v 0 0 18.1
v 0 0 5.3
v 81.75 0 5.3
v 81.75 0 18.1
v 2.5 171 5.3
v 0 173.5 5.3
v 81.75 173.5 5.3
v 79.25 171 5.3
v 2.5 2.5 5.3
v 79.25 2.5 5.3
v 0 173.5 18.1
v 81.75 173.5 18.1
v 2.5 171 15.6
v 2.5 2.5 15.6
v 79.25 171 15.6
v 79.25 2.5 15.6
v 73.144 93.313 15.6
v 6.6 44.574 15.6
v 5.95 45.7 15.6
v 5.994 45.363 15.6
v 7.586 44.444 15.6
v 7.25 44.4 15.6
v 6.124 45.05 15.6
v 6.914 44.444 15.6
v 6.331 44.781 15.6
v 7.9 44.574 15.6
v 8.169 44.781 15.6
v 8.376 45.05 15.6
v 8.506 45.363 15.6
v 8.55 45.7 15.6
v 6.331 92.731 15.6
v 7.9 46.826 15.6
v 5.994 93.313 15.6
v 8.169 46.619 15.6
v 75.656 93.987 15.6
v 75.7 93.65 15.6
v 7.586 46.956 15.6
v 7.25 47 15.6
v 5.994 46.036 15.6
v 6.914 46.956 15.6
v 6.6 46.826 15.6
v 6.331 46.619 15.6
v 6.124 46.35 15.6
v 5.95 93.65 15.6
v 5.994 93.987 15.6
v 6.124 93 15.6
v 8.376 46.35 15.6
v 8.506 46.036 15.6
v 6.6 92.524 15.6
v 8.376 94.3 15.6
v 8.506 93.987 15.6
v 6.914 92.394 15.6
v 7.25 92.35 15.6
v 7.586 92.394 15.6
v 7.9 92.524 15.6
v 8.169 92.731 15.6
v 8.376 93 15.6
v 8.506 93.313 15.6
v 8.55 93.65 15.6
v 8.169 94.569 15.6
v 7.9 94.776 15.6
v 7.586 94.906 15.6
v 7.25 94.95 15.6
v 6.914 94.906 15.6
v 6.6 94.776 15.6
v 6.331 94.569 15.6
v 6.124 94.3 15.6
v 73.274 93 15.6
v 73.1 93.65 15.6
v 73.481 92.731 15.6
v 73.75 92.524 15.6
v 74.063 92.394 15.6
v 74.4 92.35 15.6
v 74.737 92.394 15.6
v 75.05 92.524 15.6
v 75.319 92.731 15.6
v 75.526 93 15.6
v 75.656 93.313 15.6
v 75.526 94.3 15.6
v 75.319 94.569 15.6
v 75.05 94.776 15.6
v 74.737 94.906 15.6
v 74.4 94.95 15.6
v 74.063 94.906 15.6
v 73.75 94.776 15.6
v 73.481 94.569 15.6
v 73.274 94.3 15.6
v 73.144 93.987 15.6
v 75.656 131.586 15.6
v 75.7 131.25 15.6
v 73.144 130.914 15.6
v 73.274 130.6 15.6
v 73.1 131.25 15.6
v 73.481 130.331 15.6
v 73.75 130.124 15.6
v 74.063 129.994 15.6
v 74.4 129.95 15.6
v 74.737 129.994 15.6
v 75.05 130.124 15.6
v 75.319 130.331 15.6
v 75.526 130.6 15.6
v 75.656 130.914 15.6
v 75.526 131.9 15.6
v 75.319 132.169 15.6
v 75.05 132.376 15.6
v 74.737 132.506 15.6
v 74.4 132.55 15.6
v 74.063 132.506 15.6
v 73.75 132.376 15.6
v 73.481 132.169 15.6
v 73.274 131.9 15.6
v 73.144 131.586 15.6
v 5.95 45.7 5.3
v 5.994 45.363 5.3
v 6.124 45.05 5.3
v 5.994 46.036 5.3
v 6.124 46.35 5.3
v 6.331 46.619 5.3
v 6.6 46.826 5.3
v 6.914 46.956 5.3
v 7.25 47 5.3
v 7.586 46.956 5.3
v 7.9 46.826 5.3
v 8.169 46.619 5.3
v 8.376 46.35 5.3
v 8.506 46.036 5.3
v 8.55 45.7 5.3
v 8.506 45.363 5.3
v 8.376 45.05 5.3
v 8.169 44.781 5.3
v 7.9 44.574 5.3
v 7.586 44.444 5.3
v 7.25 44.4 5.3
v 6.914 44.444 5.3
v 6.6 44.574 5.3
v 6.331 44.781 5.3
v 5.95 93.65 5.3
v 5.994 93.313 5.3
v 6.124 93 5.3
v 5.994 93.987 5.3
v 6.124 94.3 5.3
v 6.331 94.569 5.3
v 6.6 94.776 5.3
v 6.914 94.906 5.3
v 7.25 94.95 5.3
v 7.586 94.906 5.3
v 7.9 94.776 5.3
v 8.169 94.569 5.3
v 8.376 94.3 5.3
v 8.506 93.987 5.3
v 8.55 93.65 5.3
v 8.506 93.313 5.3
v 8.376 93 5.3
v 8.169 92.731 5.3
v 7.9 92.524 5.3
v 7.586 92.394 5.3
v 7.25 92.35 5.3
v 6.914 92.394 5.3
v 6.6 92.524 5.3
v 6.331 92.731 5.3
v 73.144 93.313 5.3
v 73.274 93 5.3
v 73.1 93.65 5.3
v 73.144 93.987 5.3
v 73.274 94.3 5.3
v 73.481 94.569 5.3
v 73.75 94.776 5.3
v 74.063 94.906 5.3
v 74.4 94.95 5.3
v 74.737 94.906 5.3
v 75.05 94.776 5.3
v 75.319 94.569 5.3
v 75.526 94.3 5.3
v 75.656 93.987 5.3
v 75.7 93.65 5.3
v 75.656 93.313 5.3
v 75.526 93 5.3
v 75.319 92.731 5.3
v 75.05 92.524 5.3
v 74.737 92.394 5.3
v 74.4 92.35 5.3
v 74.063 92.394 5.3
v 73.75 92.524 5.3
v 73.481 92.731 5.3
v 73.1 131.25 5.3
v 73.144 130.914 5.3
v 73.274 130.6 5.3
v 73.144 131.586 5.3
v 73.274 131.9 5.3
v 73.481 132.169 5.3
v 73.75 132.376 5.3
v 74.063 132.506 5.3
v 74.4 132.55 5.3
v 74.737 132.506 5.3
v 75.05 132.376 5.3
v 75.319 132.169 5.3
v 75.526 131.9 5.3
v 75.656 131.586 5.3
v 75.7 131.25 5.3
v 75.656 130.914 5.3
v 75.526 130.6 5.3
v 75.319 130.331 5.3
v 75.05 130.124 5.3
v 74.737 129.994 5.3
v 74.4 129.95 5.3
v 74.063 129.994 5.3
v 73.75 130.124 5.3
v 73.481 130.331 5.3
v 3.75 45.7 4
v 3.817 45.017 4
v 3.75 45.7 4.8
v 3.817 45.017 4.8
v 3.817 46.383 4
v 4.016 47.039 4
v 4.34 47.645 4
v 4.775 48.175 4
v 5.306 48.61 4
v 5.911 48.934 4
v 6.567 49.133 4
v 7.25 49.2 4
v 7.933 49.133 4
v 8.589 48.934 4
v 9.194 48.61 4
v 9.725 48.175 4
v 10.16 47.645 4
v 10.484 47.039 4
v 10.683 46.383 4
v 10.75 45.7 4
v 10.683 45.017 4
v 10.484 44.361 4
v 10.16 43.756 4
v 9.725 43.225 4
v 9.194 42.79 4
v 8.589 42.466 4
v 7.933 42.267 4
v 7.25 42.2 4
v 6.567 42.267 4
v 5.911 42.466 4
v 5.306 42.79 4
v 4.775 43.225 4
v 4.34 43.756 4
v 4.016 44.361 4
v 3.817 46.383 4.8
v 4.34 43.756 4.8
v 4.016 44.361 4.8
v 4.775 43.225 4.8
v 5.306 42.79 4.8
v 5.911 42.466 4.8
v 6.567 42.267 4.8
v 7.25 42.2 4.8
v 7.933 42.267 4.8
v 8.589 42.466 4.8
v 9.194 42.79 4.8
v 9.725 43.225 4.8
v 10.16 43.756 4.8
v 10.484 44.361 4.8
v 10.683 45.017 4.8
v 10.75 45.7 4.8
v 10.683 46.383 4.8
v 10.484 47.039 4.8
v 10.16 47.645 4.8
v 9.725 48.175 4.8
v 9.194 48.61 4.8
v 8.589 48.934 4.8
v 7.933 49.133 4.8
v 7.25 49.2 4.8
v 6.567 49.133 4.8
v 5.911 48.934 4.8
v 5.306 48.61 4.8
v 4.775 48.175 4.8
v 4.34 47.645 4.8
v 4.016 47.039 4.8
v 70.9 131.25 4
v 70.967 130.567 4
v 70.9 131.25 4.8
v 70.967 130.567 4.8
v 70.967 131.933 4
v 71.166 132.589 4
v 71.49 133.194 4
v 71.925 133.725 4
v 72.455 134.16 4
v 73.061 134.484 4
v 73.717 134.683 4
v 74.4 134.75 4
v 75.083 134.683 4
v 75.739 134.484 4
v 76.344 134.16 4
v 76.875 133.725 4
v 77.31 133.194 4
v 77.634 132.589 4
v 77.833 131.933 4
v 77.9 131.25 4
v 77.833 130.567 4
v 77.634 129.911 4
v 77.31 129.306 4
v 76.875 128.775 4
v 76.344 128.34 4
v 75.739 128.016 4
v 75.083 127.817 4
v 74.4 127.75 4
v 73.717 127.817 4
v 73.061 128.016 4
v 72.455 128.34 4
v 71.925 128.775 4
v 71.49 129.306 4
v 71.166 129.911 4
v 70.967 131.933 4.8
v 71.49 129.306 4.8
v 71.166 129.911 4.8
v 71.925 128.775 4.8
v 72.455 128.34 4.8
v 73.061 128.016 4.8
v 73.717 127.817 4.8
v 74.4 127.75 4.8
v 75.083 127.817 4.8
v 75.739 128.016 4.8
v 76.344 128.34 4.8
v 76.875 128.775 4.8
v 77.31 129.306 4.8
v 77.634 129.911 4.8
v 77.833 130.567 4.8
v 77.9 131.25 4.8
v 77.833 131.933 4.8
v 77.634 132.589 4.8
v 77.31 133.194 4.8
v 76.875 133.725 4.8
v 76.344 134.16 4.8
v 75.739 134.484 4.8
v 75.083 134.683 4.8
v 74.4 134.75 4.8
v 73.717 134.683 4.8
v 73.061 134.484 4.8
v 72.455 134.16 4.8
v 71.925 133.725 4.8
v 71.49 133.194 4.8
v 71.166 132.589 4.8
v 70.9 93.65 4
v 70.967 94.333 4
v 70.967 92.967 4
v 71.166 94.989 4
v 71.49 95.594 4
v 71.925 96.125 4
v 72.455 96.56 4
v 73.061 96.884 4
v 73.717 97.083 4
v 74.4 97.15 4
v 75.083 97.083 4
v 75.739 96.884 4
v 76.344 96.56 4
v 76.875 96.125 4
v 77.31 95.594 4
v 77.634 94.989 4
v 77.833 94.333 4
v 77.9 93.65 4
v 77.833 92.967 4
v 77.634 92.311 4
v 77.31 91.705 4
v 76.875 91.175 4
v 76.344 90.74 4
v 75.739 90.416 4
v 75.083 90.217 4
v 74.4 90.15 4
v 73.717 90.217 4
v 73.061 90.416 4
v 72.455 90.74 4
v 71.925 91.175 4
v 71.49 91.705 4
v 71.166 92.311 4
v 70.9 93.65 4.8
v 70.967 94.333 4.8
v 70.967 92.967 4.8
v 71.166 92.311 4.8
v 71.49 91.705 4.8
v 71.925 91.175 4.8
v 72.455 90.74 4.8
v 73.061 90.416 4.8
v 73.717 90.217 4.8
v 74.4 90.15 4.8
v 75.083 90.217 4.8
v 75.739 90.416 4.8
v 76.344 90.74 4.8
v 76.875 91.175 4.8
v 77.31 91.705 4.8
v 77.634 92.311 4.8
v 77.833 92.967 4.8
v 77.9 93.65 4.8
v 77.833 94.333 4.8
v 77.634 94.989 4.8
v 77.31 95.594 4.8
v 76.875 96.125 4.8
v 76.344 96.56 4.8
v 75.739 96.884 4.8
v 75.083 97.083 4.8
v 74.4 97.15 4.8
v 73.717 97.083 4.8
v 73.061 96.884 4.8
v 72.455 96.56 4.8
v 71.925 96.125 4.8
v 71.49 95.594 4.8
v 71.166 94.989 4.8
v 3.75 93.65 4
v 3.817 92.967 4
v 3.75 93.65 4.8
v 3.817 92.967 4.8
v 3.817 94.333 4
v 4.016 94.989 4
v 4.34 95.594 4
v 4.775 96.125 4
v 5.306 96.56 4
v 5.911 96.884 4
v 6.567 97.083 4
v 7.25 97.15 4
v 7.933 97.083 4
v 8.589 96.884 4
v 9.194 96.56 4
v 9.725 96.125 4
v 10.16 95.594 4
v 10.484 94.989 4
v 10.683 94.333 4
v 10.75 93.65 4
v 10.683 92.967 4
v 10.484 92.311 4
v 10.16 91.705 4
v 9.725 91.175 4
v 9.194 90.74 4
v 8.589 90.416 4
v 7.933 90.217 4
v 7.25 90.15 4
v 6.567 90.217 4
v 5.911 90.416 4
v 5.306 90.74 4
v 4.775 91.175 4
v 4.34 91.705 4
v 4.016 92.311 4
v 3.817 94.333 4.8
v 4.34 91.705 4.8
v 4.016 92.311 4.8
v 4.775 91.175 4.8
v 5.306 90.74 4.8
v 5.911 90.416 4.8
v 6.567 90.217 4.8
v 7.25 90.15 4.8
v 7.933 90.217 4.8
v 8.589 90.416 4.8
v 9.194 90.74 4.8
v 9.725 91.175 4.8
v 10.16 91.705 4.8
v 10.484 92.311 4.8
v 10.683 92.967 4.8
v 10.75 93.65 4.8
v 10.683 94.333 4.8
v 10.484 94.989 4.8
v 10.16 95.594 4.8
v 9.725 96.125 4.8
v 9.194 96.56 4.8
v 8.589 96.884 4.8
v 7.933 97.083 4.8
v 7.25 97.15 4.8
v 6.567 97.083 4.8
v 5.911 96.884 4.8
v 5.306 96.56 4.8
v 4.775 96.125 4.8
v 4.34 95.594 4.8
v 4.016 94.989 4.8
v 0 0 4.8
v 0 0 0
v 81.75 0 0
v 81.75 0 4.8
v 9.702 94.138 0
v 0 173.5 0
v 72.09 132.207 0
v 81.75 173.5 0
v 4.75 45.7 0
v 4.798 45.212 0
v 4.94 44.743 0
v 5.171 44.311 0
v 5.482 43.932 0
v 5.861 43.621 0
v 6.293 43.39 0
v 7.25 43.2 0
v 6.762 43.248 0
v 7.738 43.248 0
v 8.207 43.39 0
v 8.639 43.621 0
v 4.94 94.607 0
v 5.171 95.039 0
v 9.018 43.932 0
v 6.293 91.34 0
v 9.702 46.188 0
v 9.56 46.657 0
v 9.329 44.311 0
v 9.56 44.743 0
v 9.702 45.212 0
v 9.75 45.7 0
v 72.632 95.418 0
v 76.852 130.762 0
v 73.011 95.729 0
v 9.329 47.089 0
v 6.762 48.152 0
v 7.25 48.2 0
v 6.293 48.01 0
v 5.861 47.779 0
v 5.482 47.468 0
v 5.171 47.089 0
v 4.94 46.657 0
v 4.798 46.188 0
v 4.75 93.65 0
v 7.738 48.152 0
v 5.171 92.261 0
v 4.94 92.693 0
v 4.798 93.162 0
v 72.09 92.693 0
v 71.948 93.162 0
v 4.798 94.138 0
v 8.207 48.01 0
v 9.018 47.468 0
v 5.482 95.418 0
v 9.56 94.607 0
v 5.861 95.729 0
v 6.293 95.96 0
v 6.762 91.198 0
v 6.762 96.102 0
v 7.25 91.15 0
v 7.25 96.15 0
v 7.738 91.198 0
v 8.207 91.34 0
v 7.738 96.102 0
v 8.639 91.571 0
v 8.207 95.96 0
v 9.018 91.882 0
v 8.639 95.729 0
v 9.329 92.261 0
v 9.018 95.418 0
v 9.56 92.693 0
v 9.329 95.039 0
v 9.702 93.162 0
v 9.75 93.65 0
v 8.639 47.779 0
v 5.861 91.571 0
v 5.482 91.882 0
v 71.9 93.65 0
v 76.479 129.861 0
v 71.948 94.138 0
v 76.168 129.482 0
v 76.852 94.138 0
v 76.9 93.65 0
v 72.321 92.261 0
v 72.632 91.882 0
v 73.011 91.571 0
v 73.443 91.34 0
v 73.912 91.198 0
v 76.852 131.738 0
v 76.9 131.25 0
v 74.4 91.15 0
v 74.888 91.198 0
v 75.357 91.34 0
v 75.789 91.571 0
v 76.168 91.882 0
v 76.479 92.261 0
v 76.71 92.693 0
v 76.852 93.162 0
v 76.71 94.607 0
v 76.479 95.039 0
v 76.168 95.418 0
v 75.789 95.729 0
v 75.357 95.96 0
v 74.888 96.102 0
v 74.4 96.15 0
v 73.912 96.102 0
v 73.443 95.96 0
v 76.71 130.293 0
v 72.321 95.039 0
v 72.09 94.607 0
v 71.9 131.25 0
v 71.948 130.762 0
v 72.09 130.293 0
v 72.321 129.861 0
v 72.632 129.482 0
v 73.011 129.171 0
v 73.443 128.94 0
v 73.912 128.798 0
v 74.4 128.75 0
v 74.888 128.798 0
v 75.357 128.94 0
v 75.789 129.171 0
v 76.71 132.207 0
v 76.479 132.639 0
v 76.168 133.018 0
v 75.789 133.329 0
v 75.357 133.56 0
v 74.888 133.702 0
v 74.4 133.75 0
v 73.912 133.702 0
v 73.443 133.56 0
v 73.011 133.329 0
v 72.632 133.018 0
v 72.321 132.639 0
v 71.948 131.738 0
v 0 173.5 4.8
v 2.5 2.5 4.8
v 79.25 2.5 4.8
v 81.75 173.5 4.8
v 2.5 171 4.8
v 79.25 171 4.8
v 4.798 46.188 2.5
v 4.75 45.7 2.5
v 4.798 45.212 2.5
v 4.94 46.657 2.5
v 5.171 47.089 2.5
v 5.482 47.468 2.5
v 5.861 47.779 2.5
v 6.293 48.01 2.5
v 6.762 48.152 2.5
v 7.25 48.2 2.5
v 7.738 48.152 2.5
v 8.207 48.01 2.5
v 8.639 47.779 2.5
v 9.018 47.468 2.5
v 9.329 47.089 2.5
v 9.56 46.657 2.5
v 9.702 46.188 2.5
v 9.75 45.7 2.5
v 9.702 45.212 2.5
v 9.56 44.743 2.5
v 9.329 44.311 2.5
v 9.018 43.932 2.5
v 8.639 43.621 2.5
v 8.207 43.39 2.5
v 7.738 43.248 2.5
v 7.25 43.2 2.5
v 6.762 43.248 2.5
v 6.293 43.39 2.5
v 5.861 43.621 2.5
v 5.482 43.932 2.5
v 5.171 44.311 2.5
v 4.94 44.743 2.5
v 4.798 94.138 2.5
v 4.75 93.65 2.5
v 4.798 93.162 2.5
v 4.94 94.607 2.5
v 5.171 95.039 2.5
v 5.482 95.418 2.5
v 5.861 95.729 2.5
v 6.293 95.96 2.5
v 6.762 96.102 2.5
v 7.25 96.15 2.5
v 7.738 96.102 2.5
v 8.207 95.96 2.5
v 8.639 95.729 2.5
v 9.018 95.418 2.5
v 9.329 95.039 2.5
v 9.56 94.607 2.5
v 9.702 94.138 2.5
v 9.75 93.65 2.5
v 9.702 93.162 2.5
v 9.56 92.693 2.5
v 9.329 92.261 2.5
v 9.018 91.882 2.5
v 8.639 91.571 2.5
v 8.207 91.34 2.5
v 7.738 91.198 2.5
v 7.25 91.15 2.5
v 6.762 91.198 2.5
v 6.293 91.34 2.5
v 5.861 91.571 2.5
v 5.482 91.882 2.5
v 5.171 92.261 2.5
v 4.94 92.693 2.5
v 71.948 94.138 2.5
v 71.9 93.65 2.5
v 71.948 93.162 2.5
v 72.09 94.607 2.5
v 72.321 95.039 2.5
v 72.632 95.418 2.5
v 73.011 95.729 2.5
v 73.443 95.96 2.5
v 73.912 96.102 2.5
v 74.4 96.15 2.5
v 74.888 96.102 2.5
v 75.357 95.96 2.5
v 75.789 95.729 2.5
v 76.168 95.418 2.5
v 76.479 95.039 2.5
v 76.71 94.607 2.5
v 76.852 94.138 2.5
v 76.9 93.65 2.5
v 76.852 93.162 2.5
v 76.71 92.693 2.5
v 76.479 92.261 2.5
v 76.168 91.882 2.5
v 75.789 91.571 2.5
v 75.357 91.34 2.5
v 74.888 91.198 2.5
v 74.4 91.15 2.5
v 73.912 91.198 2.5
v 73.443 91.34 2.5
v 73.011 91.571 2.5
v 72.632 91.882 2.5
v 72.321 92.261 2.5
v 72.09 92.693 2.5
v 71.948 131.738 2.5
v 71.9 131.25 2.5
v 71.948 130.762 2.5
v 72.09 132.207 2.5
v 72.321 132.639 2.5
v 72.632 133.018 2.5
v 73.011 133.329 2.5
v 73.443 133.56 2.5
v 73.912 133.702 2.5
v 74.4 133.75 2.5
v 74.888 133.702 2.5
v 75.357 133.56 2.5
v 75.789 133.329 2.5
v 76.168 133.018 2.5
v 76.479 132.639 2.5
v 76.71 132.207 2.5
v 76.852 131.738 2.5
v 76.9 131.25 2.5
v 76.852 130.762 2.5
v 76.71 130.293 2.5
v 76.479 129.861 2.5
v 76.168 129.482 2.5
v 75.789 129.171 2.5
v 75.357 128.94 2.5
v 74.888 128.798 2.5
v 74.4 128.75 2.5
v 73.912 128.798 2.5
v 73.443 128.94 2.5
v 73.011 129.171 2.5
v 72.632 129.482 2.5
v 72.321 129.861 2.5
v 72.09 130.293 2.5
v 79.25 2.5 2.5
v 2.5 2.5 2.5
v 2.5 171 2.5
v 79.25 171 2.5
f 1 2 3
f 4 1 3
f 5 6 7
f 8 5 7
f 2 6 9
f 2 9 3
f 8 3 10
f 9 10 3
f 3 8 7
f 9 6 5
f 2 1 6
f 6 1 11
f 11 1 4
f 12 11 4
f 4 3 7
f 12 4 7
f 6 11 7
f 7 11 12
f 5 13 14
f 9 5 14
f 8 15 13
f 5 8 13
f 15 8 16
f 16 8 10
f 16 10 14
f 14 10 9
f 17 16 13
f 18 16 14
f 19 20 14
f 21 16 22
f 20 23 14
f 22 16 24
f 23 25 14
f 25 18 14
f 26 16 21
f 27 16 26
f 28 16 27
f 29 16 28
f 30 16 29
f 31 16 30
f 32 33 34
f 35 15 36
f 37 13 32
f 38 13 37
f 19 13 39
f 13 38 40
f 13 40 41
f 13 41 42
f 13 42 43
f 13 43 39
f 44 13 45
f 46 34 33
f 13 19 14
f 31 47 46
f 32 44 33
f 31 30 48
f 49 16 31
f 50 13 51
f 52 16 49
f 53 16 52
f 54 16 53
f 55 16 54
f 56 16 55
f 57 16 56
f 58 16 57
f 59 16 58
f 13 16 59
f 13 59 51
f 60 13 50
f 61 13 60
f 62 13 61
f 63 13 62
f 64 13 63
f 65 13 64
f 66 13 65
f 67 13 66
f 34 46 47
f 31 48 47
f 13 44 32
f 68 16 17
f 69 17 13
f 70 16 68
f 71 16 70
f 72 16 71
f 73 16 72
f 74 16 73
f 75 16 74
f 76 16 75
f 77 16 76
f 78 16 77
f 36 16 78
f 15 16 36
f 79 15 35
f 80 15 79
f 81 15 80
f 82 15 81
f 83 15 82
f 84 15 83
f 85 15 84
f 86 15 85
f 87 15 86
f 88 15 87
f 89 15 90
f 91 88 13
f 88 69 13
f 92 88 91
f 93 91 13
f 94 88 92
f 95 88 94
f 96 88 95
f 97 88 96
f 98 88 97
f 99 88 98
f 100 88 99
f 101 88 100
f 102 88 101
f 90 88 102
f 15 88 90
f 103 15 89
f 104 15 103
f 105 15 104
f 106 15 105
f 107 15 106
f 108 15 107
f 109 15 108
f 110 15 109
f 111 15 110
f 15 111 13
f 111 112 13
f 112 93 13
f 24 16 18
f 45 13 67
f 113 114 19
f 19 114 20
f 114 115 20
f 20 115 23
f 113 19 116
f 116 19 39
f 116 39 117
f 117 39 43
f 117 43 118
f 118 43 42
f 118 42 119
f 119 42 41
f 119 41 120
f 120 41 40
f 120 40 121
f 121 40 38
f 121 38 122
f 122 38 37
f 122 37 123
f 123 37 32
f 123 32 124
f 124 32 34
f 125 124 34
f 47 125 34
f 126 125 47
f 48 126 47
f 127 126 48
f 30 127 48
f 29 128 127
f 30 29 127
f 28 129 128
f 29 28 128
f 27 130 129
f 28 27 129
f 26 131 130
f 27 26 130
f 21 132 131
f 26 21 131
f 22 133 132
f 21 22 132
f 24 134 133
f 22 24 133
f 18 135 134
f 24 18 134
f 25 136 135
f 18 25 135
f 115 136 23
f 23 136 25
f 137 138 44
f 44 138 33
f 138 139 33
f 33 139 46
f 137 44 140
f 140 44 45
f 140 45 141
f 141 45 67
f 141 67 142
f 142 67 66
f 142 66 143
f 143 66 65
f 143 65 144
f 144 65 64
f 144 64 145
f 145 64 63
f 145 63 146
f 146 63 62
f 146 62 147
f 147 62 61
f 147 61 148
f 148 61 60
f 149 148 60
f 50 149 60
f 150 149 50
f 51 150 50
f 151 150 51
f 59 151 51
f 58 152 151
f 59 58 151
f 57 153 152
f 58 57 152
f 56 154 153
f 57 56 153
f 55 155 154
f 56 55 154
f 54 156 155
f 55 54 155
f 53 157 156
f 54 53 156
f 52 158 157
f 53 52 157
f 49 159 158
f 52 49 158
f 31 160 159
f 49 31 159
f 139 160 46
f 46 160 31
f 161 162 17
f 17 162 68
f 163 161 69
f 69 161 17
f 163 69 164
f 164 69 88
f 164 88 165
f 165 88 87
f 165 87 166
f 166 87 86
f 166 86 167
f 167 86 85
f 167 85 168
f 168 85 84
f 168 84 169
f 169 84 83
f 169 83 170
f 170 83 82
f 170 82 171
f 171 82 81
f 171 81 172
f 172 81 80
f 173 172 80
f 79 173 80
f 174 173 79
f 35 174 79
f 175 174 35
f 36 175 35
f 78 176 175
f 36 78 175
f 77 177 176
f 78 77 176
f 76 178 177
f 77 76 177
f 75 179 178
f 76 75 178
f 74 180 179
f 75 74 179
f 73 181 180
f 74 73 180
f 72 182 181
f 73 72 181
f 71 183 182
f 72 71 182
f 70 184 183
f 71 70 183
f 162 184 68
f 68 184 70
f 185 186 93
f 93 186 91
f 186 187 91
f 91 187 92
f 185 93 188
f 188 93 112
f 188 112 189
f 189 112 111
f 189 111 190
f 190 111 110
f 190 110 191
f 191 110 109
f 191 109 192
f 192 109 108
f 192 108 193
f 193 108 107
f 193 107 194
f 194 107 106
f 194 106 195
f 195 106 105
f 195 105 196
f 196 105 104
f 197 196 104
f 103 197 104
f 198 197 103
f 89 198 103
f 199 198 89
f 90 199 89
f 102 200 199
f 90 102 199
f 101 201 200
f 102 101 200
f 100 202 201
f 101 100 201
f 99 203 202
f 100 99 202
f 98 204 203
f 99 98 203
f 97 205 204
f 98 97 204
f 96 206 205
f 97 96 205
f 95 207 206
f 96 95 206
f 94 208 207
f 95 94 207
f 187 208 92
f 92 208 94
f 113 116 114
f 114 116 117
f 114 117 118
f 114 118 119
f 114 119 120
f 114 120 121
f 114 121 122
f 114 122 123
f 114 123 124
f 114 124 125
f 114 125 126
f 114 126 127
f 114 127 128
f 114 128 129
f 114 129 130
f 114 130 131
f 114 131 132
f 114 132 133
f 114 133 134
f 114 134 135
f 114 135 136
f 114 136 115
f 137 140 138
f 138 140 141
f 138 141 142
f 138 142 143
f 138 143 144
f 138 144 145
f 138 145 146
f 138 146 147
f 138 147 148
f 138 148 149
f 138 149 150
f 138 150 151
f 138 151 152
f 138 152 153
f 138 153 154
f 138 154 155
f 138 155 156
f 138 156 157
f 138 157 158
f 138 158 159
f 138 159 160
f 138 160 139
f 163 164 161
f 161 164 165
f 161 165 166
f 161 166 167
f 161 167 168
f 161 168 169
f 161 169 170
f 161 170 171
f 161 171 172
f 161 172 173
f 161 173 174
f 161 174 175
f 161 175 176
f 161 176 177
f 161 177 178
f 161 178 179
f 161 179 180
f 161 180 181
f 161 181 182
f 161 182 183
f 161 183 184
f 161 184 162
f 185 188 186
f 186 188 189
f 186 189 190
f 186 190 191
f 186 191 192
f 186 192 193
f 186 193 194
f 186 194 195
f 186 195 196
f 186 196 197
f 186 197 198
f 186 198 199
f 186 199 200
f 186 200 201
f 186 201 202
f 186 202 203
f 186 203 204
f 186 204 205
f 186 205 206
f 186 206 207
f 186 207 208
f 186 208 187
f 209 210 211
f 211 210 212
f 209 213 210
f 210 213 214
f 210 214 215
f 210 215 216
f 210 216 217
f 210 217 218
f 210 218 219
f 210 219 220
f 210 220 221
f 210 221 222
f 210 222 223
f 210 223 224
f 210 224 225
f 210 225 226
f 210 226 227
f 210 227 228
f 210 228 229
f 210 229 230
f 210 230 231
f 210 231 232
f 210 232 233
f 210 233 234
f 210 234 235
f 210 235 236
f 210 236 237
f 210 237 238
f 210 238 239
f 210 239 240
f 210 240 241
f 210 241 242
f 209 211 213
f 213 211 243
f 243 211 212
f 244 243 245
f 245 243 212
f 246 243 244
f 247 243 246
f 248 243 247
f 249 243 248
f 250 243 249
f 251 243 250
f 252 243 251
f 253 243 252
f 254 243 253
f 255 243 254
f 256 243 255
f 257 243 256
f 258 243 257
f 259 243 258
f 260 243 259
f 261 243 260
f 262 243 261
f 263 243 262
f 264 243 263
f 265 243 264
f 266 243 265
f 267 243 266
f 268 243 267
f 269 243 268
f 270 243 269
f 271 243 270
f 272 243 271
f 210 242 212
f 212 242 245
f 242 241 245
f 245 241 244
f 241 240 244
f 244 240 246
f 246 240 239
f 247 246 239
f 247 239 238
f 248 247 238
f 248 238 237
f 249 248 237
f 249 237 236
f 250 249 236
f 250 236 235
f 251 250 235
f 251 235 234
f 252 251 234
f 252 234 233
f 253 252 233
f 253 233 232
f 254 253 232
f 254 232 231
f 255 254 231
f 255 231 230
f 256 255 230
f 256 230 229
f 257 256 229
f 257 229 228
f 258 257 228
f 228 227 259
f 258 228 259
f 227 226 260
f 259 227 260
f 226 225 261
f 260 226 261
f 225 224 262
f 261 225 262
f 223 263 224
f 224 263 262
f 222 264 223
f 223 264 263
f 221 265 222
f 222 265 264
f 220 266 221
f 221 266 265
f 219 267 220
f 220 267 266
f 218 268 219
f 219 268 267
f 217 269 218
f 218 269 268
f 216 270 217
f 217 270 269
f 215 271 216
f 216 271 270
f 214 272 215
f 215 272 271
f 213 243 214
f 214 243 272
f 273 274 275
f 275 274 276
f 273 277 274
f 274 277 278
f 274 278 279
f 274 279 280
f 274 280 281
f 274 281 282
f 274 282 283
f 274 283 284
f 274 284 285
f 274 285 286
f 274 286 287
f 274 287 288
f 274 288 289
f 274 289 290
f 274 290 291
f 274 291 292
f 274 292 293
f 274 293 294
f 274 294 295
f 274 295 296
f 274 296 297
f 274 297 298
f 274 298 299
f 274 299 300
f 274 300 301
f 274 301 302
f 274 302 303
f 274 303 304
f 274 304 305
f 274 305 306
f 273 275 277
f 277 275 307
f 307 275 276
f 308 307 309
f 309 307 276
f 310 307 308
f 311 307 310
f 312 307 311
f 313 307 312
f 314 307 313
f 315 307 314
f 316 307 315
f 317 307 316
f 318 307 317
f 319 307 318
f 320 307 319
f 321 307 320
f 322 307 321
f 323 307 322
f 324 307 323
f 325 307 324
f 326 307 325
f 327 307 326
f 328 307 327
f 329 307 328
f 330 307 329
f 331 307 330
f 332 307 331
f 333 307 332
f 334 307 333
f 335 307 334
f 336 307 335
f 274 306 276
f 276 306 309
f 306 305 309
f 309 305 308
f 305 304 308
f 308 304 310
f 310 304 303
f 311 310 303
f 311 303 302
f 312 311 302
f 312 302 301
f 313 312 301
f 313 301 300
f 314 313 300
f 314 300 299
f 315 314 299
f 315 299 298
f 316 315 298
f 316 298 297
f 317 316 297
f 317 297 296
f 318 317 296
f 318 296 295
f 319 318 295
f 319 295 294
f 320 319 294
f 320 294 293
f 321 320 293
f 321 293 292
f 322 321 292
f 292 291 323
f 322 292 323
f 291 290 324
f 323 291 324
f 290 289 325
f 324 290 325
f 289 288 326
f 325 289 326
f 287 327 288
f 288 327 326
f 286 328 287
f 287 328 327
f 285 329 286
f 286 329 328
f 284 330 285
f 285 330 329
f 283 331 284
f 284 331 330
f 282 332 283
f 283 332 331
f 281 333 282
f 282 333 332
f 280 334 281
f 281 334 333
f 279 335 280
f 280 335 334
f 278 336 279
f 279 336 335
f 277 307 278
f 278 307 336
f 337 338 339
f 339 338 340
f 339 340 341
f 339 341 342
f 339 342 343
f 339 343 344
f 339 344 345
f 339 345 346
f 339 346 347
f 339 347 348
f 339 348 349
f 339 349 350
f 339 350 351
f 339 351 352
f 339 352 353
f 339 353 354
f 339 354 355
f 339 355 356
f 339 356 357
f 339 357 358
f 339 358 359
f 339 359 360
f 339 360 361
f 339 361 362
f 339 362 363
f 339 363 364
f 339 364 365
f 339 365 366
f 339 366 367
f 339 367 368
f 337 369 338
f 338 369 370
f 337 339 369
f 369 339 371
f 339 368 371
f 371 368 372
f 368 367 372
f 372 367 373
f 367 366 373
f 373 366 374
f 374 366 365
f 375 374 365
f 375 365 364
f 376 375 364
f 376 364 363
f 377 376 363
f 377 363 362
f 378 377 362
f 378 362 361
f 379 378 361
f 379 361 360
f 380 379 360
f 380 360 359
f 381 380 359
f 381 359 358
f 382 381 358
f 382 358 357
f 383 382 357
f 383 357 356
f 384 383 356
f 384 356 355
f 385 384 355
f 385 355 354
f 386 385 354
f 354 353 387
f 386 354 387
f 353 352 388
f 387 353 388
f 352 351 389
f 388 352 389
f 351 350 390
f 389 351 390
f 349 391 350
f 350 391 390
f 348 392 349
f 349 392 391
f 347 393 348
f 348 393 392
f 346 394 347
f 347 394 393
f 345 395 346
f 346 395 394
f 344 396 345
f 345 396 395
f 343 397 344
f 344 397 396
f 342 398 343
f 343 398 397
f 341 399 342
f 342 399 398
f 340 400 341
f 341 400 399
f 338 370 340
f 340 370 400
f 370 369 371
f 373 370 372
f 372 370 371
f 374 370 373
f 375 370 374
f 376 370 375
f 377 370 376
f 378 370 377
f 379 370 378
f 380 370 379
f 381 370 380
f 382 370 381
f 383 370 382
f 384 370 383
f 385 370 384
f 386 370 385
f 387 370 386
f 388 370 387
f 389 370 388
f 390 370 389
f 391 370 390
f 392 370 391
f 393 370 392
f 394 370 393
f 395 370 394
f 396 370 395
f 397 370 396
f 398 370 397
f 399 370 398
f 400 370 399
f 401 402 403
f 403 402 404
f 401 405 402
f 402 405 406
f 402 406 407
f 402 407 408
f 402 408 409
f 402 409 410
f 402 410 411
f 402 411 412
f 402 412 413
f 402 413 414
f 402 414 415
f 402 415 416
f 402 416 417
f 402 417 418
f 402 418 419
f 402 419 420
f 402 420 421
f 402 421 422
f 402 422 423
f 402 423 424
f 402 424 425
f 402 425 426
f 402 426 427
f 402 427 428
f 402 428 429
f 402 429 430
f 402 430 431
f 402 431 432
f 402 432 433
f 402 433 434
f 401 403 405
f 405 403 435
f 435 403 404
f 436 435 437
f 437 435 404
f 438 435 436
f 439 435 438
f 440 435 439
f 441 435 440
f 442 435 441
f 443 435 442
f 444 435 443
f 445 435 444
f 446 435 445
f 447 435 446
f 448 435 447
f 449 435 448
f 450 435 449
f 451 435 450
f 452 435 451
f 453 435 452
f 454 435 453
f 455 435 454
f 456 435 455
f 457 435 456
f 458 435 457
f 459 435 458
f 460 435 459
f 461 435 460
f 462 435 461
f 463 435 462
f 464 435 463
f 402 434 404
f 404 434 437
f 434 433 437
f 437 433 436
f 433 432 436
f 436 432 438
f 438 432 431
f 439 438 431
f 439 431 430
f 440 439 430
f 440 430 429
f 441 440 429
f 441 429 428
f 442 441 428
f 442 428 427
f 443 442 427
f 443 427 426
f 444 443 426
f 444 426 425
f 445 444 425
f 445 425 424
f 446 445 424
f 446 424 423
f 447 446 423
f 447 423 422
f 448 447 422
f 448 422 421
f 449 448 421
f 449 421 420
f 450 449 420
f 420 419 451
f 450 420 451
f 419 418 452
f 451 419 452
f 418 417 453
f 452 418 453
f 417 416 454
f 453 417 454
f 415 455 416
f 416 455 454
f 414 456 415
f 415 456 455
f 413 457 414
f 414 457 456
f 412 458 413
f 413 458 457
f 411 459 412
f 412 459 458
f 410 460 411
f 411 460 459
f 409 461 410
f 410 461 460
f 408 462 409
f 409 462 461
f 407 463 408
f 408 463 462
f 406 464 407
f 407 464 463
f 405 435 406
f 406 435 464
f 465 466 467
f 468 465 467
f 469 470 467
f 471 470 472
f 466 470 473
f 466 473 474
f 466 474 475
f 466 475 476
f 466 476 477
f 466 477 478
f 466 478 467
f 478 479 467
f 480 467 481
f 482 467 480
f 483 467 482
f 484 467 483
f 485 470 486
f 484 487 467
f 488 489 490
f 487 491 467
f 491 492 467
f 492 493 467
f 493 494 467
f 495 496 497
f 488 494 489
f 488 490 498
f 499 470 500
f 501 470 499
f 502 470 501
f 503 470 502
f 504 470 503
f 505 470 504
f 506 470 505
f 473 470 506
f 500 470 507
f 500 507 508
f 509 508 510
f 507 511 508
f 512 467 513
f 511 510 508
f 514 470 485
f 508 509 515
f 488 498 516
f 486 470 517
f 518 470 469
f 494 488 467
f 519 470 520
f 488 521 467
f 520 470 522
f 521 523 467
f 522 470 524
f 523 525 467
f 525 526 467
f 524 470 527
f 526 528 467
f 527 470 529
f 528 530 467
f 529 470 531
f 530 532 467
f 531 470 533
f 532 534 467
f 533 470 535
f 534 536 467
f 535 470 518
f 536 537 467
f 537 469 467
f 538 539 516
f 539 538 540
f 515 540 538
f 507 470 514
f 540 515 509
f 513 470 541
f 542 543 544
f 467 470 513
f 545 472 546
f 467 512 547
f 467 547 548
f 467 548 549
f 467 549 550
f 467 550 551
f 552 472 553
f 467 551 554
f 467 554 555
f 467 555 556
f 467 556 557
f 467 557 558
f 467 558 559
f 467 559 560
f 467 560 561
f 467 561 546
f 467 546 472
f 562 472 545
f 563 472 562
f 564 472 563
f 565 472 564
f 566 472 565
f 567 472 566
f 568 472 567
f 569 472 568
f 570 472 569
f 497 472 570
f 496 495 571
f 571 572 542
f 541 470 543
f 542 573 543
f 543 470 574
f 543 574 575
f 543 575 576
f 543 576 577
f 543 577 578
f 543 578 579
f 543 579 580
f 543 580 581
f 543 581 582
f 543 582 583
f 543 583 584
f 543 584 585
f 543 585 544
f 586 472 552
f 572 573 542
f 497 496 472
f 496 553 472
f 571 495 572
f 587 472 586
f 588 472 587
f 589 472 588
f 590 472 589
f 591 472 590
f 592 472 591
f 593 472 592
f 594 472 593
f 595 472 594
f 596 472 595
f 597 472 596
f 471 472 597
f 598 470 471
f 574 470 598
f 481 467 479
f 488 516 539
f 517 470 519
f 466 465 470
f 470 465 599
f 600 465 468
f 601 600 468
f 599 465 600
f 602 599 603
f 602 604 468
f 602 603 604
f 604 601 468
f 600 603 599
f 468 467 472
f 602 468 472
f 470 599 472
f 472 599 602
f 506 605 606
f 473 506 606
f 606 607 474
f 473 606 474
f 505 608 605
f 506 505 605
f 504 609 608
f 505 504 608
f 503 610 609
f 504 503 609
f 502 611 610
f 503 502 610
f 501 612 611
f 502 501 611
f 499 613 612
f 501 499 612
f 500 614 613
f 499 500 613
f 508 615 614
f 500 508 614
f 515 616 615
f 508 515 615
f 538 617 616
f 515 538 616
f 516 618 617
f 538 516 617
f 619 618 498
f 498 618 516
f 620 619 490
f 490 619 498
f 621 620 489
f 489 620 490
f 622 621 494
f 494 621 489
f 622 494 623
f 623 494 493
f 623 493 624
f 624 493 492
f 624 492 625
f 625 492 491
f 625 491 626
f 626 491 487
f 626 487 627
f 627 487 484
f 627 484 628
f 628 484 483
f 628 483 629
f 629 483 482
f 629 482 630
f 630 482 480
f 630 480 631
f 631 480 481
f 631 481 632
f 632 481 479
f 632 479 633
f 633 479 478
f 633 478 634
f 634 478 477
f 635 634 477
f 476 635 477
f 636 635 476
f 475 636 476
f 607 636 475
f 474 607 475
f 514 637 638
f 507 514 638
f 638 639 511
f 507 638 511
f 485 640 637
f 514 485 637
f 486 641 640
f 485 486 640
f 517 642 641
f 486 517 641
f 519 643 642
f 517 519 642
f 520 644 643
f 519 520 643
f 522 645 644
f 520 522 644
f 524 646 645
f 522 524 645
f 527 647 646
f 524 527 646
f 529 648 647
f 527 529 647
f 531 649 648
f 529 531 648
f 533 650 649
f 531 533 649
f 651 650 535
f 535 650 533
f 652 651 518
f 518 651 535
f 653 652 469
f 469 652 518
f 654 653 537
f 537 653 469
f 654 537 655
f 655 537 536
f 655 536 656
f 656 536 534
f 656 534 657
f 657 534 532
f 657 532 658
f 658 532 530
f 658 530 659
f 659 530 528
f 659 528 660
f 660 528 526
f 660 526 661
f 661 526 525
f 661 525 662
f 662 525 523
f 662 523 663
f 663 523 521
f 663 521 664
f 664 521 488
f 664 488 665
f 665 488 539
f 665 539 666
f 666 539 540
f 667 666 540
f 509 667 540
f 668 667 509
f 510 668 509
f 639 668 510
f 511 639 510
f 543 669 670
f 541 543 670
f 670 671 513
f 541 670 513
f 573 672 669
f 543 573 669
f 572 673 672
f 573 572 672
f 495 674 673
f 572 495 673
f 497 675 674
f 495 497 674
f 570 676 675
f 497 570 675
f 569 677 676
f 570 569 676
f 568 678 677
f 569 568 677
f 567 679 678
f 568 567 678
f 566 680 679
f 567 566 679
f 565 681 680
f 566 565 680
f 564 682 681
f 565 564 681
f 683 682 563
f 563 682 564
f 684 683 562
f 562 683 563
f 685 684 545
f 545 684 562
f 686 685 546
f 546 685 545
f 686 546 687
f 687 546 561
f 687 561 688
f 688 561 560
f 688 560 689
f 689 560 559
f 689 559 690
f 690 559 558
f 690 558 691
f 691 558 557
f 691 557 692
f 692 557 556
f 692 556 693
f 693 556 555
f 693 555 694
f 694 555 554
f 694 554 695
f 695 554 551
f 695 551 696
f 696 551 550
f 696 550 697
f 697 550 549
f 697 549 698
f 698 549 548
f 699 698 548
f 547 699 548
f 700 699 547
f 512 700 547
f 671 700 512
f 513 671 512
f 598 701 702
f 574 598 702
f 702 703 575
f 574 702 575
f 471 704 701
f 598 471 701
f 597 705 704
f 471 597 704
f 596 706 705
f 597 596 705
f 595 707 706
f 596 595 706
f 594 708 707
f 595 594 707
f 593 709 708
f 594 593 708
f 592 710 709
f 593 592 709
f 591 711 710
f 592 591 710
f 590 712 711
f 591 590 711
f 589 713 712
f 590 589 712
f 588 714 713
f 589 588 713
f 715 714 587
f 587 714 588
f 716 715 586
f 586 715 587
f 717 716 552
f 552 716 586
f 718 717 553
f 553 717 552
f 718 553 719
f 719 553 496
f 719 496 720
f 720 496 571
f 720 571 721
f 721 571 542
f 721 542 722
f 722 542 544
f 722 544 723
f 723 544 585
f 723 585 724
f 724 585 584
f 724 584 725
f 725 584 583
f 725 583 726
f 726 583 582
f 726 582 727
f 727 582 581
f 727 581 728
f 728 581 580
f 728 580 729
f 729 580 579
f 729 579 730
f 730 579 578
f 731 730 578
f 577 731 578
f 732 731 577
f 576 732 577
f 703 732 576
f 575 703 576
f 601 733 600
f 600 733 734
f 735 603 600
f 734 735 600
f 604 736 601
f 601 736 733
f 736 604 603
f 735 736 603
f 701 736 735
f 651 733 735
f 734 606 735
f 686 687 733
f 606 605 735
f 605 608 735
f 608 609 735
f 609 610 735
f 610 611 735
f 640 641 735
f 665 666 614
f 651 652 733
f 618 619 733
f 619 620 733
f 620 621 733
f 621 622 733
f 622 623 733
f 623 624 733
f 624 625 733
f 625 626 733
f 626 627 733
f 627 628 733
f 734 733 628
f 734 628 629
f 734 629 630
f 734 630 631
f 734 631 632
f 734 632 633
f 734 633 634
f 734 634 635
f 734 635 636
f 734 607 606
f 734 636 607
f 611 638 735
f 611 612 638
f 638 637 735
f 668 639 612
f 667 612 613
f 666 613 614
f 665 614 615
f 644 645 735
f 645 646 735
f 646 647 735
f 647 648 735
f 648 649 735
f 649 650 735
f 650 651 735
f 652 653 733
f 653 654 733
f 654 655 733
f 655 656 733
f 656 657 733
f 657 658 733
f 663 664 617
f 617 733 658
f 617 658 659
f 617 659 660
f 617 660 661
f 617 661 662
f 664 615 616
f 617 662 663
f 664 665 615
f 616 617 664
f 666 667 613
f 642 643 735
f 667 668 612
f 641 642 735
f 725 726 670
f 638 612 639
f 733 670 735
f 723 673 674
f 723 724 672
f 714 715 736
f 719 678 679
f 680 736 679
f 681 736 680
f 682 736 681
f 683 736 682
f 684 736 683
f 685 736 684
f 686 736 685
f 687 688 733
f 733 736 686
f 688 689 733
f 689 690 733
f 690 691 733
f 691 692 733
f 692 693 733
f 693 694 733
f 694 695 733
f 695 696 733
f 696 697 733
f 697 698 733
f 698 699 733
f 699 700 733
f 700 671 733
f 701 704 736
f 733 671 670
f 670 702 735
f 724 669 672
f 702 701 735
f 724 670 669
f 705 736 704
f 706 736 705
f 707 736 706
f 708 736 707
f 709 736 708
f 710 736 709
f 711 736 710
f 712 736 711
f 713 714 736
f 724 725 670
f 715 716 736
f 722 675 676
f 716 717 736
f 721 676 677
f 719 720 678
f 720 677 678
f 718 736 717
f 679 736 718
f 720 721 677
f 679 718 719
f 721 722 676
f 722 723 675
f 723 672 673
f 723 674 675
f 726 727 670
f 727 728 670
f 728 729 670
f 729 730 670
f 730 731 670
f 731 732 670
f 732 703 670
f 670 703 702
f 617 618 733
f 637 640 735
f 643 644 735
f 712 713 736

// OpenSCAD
// Auto-generated enclosure from KiCad board
// Board size: 75.75 x 167.50 mm, thickness: 1.60 mm
// Inner XY:   76.75 x 168.50 mm
// Outer XY:   81.75 x 173.50 mm


////////////////////
// PARAMETERS
////////////////////
outer_x = 81.750;
outer_y = 173.500;

inner_x = 76.750;
inner_y = 168.500;

wall      = 2.500;
bottom_h  = 4.800;
top_h     = 12.800;

lip_h         = 1.000;
lip_clearance = 0.200;

boss_r          = 3.500;
screw_clearance = 2.600;
screw_head_d    = 5.000;
screw_head_h    = 2.500;

// Board offset inside the case (so it's centered)
board_offset_x = wall + 0.500;
board_offset_y = wall + 0.500;
board_z        = 4.000;


////////////////////
// BOTTOM CASE
////////////////////
module bottom_case() {
    difference() {
        // Outer shell
        cube([outer_x, outer_y, bottom_h], center=false);

        // Inner cavity for board + air
        translate([wall, wall, wall])
            cube([inner_x, inner_y, bottom_h], center=false);

        // Recessed pockets for screw heads (from inside bottom)

        // Screw head pocket for hole at (22.20, 59.40)
        translate([7.250, 45.700, 0])
            cylinder(d=screw_head_d, h=screw_head_h, $fn=32);

        // Through hole for screw shaft
        translate([7.250, 45.700, 0])
            cylinder(d=screw_clearance, h=bottom_h + 0.5, $fn=24);

        // Screw head pocket for hole at (89.35, 144.95)
        translate([74.400, 131.250, 0])
            cylinder(d=screw_head_d, h=screw_head_h, $fn=32);

        // Through hole for screw shaft
        translate([74.400, 131.250, 0])
            cylinder(d=screw_clearance, h=bottom_h + 0.5, $fn=24);

        // Screw head pocket for hole at (22.20, 107.35)
        translate([7.250, 93.650, 0])
            cylinder(d=screw_head_d, h=screw_head_h, $fn=32);

        // Through hole for screw shaft
        translate([7.250, 93.650, 0])
            cylinder(d=screw_clearance, h=bottom_h + 0.5, $fn=24);

        // Screw head pocket for hole at (89.35, 107.35)
        translate([74.400, 93.650, 0])
            cylinder(d=screw_head_d, h=screw_head_h, $fn=32);

        // Through hole for screw shaft
        translate([74.400, 93.650, 0])
            cylinder(d=screw_clearance, h=bottom_h + 0.5, $fn=24);

    }


    // Bosses around mounting holes

    translate([7.250, 45.700, board_z])
        cylinder(r=boss_r, h=bottom_h - board_z, $fn=32);

    translate([74.400, 131.250, board_z])
        cylinder(r=boss_r, h=bottom_h - board_z, $fn=32);

    translate([7.250, 93.650, board_z])
        cylinder(r=boss_r, h=bottom_h - board_z, $fn=32);

    translate([74.400, 93.650, board_z])
        cylinder(r=boss_r, h=bottom_h - board_z, $fn=32);

}


////////////////////
// TOP CASE
////////////////////
module top_case() {
    // The top is flipped in Z when assembled, but we model it upright.
    difference() {
        // Outer shell
        cube([outer_x, outer_y, top_h], center=false);

        // Inner cavity for board + air + lip
        translate([wall, wall, 0])
            cube([inner_x, inner_y, top_h - wall], center=false);

        // Lip clearance, so it mates with bottom lip
        translate([wall + lip_clearance,
                   wall + lip_clearance,
                   0])
            cube([inner_x - 2*lip_clearance,
                  inner_y - 2*lip_clearance,
                  lip_h], center=false);
    }

    // Mating bosses: small holes for screws / inserts that align with bottom bosses.

    // Boss hole in top for screw tip or insert
    translate([7.250, 45.700, 0])
        cylinder(d=screw_clearance, h=top_h, $fn=24);

    // Boss hole in top for screw tip or insert
    translate([74.400, 131.250, 0])
        cylinder(d=screw_clearance, h=top_h, $fn=24);

    // Boss hole in top for screw tip or insert
    translate([7.250, 93.650, 0])
        cylinder(d=screw_clearance, h=top_h, $fn=24);

    // Boss hole in top for screw tip or insert
    translate([74.400, 93.650, 0])
        cylinder(d=screw_clearance, h=top_h, $fn=24);

}


////////////////////
// ASSEMBLY VIEW
////////////////////
module assembly() {
    // Bottom at Z=0
    bottom_case();

    // Top translated above bottom by a small gap
    translate([0, 0, bottom_h + 0.5])
        top_case();
}

// Uncomment one of the following to preview/export in OpenSCAD:
// bottom_case();
// top_case();
assembly();
